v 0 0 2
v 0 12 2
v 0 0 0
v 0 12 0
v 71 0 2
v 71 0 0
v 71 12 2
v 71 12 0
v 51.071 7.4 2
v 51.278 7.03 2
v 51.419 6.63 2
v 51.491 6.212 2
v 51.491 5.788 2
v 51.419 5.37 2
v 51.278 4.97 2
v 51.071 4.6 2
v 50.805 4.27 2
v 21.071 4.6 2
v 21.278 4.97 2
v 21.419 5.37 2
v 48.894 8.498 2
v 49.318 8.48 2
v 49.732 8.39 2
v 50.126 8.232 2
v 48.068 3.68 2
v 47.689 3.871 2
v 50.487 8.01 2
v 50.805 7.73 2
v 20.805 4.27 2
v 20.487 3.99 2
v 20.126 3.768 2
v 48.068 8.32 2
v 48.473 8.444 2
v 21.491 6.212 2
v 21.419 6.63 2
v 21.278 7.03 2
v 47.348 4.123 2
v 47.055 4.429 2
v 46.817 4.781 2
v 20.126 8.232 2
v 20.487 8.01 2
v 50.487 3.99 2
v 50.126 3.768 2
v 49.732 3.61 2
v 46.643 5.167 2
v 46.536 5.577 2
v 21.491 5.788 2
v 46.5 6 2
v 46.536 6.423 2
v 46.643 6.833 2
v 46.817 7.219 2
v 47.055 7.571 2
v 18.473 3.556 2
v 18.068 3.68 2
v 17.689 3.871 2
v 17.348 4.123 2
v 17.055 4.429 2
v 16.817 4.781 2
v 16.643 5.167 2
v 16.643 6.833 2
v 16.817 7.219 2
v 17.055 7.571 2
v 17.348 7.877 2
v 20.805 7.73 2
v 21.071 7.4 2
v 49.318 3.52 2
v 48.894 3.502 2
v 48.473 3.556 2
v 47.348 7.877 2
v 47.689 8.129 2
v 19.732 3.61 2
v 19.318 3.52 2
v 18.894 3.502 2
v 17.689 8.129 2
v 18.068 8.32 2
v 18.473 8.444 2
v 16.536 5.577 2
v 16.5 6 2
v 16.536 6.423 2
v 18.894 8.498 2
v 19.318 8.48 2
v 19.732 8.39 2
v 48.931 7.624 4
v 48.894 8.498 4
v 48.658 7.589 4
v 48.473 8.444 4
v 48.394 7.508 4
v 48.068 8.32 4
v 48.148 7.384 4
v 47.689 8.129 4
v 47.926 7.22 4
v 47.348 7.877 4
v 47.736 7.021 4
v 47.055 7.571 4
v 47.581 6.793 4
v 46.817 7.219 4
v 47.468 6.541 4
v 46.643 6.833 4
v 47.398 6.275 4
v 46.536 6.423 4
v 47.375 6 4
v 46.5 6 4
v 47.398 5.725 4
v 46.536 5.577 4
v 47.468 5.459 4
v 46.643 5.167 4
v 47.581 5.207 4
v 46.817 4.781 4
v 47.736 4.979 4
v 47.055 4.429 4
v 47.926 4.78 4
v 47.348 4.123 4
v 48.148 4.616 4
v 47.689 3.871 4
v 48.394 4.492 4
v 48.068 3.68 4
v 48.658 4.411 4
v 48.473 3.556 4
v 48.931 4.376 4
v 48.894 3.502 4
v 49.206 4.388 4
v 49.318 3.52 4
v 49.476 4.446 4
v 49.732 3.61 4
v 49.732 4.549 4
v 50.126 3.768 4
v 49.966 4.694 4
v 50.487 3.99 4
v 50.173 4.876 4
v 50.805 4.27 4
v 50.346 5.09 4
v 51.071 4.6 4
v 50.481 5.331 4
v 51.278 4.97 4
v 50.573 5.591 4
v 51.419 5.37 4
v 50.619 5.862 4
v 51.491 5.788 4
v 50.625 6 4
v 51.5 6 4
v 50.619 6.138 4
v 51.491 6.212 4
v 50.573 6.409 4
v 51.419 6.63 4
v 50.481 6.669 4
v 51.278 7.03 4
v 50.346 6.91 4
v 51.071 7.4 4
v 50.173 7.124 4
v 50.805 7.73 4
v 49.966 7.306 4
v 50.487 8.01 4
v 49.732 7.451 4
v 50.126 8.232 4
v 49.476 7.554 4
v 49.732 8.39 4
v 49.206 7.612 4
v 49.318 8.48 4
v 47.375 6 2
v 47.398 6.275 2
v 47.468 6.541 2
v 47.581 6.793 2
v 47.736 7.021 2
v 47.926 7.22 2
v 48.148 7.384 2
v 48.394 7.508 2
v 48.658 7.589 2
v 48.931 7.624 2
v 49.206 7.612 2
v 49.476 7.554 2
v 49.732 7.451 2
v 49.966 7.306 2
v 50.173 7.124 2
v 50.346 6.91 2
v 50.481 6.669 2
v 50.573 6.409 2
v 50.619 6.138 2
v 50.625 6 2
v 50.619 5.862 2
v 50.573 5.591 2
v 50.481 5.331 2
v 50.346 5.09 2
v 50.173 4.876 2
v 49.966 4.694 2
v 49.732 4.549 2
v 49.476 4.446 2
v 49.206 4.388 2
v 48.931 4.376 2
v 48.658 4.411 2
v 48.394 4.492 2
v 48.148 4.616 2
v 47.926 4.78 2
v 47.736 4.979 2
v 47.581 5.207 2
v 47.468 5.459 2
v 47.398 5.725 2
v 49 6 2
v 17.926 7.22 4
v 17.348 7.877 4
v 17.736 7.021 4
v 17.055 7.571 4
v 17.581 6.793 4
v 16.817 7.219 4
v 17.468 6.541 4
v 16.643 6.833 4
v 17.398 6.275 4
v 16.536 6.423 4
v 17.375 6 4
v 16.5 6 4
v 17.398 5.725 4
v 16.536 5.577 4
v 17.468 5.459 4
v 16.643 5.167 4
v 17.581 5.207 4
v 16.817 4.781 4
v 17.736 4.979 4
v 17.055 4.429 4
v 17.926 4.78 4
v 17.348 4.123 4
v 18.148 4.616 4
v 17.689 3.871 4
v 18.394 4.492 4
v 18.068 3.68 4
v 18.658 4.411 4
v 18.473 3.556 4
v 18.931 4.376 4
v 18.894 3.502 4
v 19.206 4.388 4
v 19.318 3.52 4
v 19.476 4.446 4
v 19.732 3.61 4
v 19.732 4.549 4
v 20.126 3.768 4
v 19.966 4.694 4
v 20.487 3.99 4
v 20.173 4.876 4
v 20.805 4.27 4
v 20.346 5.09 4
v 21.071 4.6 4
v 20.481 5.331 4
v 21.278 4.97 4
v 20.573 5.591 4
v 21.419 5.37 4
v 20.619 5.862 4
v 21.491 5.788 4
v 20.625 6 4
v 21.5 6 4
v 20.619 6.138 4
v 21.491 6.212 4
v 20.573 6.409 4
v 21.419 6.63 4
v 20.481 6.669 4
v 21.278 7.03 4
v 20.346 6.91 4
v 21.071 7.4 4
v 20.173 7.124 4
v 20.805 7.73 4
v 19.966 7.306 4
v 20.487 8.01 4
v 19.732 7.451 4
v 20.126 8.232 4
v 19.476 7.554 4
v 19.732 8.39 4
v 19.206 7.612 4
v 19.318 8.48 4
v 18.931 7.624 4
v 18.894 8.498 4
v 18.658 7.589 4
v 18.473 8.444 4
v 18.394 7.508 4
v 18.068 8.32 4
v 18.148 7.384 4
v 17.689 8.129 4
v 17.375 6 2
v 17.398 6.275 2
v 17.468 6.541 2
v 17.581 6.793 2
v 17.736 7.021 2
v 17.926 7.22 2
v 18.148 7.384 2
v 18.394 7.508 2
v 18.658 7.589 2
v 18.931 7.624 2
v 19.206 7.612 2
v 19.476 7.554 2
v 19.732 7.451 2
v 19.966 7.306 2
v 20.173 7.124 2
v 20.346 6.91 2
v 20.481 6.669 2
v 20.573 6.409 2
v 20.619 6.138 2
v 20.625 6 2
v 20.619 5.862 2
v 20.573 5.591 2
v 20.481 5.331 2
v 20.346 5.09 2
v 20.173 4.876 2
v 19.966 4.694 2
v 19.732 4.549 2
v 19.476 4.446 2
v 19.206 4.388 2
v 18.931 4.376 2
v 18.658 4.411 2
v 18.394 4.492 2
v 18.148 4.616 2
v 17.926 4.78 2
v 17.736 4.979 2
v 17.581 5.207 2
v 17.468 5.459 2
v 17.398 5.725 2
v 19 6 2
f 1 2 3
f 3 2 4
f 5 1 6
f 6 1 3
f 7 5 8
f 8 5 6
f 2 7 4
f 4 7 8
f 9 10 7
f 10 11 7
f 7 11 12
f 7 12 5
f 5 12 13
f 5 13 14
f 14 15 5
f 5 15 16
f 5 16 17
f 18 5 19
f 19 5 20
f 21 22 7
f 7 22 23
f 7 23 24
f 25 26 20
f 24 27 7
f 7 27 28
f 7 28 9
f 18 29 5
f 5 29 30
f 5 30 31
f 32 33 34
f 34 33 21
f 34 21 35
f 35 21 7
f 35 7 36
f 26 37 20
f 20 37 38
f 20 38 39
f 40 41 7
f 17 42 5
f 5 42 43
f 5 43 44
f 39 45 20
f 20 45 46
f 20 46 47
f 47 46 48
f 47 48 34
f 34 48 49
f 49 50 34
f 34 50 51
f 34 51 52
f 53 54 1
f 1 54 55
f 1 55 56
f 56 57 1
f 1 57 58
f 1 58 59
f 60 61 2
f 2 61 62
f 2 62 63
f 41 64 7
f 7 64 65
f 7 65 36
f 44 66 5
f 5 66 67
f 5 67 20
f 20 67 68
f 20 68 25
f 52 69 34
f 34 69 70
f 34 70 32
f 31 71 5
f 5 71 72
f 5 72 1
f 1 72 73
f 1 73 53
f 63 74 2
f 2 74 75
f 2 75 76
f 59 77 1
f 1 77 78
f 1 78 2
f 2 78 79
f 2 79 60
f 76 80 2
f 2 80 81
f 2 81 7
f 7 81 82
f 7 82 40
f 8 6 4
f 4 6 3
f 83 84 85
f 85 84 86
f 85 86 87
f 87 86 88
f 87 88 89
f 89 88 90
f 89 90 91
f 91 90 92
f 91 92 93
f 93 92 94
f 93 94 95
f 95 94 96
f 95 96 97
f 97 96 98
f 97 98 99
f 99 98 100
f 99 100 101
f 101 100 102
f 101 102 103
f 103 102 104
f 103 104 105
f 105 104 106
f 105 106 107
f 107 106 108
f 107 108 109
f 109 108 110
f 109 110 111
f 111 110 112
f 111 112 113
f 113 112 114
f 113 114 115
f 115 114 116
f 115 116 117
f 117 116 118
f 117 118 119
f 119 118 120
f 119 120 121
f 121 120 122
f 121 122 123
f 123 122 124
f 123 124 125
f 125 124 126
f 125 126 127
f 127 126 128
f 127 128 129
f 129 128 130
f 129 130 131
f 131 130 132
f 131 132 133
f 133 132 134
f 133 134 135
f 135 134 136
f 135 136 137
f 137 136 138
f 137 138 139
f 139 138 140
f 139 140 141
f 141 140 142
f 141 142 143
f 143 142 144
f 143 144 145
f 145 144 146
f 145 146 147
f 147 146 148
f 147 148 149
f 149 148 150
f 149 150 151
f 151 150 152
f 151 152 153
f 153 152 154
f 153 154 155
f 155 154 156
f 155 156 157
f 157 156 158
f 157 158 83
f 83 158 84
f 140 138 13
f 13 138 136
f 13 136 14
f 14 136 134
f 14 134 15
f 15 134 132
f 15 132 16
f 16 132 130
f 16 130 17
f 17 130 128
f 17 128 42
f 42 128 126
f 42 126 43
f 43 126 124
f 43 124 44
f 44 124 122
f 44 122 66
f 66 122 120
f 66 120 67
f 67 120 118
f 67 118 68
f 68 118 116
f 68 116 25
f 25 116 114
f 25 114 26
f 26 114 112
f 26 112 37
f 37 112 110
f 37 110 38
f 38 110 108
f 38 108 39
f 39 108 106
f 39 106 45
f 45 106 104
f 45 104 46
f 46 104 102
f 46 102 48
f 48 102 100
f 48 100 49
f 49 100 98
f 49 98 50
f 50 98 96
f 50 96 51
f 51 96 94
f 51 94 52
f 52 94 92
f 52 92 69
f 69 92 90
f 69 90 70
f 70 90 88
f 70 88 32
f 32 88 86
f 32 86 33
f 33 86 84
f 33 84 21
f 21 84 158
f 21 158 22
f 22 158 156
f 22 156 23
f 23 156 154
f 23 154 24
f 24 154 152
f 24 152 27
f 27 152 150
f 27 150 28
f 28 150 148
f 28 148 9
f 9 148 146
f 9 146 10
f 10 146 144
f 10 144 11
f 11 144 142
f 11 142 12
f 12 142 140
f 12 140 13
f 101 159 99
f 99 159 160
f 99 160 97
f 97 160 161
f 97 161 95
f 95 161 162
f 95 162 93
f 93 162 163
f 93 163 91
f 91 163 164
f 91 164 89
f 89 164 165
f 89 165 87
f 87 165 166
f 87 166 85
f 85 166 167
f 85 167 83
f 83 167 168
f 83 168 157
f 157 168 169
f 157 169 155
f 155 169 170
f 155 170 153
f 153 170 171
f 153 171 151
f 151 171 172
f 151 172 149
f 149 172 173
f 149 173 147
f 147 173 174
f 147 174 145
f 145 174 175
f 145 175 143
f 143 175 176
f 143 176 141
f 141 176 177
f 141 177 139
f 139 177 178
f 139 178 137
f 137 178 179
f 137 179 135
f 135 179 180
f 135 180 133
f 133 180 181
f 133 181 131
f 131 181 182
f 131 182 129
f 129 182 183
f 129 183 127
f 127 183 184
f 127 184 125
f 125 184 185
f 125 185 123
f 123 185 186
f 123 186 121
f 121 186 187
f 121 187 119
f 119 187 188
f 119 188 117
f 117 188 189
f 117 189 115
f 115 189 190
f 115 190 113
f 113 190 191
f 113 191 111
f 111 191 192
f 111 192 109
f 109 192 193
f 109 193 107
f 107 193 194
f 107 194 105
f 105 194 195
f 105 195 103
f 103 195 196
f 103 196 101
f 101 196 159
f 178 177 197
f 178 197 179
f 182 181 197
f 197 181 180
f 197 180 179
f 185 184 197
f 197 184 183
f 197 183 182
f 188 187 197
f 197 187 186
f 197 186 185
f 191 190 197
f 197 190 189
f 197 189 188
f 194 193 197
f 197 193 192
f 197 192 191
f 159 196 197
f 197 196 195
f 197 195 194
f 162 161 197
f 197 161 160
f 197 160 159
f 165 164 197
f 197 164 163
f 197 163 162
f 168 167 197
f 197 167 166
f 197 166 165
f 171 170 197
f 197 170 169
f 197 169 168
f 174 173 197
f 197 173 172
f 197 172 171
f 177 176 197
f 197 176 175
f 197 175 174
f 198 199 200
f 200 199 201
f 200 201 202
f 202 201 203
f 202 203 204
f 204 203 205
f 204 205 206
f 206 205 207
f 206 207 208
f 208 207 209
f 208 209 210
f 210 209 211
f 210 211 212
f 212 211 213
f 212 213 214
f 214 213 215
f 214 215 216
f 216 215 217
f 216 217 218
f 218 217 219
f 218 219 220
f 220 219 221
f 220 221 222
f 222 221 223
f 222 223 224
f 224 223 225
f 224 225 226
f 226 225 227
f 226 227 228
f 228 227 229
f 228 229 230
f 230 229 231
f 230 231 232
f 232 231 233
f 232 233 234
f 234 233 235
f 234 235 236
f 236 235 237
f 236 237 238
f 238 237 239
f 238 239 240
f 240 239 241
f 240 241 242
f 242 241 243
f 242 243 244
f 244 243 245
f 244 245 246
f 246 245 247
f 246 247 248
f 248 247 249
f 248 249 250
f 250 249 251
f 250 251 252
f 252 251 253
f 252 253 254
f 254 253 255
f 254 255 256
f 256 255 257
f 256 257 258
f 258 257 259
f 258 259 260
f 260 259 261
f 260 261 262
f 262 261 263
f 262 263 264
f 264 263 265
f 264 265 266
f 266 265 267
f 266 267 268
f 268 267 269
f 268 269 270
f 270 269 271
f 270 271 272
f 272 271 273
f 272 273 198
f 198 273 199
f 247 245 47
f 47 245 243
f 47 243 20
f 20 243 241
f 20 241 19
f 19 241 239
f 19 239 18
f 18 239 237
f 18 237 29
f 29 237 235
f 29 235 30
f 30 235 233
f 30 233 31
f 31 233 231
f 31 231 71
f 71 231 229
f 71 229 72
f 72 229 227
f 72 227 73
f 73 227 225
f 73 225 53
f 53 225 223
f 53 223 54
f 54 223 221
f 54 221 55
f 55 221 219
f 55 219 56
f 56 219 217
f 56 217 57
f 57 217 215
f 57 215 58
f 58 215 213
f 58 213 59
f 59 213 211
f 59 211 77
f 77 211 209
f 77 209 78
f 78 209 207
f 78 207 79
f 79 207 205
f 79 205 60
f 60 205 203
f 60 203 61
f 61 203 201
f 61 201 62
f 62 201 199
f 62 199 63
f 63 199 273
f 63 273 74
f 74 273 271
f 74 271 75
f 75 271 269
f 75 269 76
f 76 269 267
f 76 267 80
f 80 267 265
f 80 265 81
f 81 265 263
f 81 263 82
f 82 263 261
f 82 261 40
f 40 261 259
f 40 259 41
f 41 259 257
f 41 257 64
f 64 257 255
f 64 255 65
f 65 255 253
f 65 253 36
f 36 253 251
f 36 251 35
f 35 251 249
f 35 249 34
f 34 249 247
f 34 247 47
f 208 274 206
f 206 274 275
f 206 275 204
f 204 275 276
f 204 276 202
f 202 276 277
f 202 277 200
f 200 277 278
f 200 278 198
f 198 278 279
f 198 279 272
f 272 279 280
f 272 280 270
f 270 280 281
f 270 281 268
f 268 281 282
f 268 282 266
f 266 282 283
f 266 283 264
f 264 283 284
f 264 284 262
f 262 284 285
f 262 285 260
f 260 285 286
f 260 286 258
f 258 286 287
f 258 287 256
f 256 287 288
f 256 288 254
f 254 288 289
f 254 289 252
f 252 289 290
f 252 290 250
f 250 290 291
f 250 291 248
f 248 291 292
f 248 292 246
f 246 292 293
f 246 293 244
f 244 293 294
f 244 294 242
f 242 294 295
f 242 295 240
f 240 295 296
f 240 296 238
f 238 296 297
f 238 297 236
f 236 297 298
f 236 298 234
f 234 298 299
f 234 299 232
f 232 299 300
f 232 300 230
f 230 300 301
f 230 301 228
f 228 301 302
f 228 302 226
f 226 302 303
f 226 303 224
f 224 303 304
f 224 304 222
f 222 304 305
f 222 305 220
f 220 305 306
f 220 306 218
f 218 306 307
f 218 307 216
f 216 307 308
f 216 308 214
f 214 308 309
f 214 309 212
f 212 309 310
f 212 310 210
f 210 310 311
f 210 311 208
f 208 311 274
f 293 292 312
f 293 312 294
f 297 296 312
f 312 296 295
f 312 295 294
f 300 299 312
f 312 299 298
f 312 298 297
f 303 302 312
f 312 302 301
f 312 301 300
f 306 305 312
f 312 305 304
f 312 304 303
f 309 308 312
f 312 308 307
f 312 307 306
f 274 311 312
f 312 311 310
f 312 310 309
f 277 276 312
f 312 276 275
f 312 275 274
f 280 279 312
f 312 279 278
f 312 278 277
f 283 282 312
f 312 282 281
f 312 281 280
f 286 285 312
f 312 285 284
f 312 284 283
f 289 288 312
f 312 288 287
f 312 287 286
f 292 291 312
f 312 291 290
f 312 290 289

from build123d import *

# Parameters (mm, degrees)
SKETCH1_W           = 71
SKETCH1_H           = 12
BOSS_EXTRUDE1_DEPTH = 2
SKETCH2_R           = 2.5
SKETCH2_R_2         = 1.625
BOSS_EXTRUDE2_DEPTH = 2


with BuildPart() as part:
    # Sketch1 → Boss-Extrude1 (new body)
    with BuildSketch(Plane.XY):
        with Locations((35.5, 6)):
            Rectangle(SKETCH1_W, SKETCH1_H)
    extrude(amount=BOSS_EXTRUDE1_DEPTH)

    # Sketch2 → Boss-Extrude2 (add)
    # profile 1 of 2: a face of its own
    with BuildSketch(Plane.XY.offset(2)):
        with Locations(Location((19, 6, 0), (0, 0, 180))):
            Circle(SKETCH2_R)
        with Locations((19, 6)):
            Circle(SKETCH2_R_2, mode=Mode.SUBTRACT)
    # profile 2 of 2: a face of its own
    with BuildSketch(Plane.XY.offset(2)):
        with Locations(Location((49, 6, 0), (0, 0, 180))):
            Circle(SKETCH2_R)
        with Locations((49, 6)):
            Circle(SKETCH2_R_2, mode=Mode.SUBTRACT)
    extrude(amount=BOSS_EXTRUDE2_DEPTH)


solid = part.part
